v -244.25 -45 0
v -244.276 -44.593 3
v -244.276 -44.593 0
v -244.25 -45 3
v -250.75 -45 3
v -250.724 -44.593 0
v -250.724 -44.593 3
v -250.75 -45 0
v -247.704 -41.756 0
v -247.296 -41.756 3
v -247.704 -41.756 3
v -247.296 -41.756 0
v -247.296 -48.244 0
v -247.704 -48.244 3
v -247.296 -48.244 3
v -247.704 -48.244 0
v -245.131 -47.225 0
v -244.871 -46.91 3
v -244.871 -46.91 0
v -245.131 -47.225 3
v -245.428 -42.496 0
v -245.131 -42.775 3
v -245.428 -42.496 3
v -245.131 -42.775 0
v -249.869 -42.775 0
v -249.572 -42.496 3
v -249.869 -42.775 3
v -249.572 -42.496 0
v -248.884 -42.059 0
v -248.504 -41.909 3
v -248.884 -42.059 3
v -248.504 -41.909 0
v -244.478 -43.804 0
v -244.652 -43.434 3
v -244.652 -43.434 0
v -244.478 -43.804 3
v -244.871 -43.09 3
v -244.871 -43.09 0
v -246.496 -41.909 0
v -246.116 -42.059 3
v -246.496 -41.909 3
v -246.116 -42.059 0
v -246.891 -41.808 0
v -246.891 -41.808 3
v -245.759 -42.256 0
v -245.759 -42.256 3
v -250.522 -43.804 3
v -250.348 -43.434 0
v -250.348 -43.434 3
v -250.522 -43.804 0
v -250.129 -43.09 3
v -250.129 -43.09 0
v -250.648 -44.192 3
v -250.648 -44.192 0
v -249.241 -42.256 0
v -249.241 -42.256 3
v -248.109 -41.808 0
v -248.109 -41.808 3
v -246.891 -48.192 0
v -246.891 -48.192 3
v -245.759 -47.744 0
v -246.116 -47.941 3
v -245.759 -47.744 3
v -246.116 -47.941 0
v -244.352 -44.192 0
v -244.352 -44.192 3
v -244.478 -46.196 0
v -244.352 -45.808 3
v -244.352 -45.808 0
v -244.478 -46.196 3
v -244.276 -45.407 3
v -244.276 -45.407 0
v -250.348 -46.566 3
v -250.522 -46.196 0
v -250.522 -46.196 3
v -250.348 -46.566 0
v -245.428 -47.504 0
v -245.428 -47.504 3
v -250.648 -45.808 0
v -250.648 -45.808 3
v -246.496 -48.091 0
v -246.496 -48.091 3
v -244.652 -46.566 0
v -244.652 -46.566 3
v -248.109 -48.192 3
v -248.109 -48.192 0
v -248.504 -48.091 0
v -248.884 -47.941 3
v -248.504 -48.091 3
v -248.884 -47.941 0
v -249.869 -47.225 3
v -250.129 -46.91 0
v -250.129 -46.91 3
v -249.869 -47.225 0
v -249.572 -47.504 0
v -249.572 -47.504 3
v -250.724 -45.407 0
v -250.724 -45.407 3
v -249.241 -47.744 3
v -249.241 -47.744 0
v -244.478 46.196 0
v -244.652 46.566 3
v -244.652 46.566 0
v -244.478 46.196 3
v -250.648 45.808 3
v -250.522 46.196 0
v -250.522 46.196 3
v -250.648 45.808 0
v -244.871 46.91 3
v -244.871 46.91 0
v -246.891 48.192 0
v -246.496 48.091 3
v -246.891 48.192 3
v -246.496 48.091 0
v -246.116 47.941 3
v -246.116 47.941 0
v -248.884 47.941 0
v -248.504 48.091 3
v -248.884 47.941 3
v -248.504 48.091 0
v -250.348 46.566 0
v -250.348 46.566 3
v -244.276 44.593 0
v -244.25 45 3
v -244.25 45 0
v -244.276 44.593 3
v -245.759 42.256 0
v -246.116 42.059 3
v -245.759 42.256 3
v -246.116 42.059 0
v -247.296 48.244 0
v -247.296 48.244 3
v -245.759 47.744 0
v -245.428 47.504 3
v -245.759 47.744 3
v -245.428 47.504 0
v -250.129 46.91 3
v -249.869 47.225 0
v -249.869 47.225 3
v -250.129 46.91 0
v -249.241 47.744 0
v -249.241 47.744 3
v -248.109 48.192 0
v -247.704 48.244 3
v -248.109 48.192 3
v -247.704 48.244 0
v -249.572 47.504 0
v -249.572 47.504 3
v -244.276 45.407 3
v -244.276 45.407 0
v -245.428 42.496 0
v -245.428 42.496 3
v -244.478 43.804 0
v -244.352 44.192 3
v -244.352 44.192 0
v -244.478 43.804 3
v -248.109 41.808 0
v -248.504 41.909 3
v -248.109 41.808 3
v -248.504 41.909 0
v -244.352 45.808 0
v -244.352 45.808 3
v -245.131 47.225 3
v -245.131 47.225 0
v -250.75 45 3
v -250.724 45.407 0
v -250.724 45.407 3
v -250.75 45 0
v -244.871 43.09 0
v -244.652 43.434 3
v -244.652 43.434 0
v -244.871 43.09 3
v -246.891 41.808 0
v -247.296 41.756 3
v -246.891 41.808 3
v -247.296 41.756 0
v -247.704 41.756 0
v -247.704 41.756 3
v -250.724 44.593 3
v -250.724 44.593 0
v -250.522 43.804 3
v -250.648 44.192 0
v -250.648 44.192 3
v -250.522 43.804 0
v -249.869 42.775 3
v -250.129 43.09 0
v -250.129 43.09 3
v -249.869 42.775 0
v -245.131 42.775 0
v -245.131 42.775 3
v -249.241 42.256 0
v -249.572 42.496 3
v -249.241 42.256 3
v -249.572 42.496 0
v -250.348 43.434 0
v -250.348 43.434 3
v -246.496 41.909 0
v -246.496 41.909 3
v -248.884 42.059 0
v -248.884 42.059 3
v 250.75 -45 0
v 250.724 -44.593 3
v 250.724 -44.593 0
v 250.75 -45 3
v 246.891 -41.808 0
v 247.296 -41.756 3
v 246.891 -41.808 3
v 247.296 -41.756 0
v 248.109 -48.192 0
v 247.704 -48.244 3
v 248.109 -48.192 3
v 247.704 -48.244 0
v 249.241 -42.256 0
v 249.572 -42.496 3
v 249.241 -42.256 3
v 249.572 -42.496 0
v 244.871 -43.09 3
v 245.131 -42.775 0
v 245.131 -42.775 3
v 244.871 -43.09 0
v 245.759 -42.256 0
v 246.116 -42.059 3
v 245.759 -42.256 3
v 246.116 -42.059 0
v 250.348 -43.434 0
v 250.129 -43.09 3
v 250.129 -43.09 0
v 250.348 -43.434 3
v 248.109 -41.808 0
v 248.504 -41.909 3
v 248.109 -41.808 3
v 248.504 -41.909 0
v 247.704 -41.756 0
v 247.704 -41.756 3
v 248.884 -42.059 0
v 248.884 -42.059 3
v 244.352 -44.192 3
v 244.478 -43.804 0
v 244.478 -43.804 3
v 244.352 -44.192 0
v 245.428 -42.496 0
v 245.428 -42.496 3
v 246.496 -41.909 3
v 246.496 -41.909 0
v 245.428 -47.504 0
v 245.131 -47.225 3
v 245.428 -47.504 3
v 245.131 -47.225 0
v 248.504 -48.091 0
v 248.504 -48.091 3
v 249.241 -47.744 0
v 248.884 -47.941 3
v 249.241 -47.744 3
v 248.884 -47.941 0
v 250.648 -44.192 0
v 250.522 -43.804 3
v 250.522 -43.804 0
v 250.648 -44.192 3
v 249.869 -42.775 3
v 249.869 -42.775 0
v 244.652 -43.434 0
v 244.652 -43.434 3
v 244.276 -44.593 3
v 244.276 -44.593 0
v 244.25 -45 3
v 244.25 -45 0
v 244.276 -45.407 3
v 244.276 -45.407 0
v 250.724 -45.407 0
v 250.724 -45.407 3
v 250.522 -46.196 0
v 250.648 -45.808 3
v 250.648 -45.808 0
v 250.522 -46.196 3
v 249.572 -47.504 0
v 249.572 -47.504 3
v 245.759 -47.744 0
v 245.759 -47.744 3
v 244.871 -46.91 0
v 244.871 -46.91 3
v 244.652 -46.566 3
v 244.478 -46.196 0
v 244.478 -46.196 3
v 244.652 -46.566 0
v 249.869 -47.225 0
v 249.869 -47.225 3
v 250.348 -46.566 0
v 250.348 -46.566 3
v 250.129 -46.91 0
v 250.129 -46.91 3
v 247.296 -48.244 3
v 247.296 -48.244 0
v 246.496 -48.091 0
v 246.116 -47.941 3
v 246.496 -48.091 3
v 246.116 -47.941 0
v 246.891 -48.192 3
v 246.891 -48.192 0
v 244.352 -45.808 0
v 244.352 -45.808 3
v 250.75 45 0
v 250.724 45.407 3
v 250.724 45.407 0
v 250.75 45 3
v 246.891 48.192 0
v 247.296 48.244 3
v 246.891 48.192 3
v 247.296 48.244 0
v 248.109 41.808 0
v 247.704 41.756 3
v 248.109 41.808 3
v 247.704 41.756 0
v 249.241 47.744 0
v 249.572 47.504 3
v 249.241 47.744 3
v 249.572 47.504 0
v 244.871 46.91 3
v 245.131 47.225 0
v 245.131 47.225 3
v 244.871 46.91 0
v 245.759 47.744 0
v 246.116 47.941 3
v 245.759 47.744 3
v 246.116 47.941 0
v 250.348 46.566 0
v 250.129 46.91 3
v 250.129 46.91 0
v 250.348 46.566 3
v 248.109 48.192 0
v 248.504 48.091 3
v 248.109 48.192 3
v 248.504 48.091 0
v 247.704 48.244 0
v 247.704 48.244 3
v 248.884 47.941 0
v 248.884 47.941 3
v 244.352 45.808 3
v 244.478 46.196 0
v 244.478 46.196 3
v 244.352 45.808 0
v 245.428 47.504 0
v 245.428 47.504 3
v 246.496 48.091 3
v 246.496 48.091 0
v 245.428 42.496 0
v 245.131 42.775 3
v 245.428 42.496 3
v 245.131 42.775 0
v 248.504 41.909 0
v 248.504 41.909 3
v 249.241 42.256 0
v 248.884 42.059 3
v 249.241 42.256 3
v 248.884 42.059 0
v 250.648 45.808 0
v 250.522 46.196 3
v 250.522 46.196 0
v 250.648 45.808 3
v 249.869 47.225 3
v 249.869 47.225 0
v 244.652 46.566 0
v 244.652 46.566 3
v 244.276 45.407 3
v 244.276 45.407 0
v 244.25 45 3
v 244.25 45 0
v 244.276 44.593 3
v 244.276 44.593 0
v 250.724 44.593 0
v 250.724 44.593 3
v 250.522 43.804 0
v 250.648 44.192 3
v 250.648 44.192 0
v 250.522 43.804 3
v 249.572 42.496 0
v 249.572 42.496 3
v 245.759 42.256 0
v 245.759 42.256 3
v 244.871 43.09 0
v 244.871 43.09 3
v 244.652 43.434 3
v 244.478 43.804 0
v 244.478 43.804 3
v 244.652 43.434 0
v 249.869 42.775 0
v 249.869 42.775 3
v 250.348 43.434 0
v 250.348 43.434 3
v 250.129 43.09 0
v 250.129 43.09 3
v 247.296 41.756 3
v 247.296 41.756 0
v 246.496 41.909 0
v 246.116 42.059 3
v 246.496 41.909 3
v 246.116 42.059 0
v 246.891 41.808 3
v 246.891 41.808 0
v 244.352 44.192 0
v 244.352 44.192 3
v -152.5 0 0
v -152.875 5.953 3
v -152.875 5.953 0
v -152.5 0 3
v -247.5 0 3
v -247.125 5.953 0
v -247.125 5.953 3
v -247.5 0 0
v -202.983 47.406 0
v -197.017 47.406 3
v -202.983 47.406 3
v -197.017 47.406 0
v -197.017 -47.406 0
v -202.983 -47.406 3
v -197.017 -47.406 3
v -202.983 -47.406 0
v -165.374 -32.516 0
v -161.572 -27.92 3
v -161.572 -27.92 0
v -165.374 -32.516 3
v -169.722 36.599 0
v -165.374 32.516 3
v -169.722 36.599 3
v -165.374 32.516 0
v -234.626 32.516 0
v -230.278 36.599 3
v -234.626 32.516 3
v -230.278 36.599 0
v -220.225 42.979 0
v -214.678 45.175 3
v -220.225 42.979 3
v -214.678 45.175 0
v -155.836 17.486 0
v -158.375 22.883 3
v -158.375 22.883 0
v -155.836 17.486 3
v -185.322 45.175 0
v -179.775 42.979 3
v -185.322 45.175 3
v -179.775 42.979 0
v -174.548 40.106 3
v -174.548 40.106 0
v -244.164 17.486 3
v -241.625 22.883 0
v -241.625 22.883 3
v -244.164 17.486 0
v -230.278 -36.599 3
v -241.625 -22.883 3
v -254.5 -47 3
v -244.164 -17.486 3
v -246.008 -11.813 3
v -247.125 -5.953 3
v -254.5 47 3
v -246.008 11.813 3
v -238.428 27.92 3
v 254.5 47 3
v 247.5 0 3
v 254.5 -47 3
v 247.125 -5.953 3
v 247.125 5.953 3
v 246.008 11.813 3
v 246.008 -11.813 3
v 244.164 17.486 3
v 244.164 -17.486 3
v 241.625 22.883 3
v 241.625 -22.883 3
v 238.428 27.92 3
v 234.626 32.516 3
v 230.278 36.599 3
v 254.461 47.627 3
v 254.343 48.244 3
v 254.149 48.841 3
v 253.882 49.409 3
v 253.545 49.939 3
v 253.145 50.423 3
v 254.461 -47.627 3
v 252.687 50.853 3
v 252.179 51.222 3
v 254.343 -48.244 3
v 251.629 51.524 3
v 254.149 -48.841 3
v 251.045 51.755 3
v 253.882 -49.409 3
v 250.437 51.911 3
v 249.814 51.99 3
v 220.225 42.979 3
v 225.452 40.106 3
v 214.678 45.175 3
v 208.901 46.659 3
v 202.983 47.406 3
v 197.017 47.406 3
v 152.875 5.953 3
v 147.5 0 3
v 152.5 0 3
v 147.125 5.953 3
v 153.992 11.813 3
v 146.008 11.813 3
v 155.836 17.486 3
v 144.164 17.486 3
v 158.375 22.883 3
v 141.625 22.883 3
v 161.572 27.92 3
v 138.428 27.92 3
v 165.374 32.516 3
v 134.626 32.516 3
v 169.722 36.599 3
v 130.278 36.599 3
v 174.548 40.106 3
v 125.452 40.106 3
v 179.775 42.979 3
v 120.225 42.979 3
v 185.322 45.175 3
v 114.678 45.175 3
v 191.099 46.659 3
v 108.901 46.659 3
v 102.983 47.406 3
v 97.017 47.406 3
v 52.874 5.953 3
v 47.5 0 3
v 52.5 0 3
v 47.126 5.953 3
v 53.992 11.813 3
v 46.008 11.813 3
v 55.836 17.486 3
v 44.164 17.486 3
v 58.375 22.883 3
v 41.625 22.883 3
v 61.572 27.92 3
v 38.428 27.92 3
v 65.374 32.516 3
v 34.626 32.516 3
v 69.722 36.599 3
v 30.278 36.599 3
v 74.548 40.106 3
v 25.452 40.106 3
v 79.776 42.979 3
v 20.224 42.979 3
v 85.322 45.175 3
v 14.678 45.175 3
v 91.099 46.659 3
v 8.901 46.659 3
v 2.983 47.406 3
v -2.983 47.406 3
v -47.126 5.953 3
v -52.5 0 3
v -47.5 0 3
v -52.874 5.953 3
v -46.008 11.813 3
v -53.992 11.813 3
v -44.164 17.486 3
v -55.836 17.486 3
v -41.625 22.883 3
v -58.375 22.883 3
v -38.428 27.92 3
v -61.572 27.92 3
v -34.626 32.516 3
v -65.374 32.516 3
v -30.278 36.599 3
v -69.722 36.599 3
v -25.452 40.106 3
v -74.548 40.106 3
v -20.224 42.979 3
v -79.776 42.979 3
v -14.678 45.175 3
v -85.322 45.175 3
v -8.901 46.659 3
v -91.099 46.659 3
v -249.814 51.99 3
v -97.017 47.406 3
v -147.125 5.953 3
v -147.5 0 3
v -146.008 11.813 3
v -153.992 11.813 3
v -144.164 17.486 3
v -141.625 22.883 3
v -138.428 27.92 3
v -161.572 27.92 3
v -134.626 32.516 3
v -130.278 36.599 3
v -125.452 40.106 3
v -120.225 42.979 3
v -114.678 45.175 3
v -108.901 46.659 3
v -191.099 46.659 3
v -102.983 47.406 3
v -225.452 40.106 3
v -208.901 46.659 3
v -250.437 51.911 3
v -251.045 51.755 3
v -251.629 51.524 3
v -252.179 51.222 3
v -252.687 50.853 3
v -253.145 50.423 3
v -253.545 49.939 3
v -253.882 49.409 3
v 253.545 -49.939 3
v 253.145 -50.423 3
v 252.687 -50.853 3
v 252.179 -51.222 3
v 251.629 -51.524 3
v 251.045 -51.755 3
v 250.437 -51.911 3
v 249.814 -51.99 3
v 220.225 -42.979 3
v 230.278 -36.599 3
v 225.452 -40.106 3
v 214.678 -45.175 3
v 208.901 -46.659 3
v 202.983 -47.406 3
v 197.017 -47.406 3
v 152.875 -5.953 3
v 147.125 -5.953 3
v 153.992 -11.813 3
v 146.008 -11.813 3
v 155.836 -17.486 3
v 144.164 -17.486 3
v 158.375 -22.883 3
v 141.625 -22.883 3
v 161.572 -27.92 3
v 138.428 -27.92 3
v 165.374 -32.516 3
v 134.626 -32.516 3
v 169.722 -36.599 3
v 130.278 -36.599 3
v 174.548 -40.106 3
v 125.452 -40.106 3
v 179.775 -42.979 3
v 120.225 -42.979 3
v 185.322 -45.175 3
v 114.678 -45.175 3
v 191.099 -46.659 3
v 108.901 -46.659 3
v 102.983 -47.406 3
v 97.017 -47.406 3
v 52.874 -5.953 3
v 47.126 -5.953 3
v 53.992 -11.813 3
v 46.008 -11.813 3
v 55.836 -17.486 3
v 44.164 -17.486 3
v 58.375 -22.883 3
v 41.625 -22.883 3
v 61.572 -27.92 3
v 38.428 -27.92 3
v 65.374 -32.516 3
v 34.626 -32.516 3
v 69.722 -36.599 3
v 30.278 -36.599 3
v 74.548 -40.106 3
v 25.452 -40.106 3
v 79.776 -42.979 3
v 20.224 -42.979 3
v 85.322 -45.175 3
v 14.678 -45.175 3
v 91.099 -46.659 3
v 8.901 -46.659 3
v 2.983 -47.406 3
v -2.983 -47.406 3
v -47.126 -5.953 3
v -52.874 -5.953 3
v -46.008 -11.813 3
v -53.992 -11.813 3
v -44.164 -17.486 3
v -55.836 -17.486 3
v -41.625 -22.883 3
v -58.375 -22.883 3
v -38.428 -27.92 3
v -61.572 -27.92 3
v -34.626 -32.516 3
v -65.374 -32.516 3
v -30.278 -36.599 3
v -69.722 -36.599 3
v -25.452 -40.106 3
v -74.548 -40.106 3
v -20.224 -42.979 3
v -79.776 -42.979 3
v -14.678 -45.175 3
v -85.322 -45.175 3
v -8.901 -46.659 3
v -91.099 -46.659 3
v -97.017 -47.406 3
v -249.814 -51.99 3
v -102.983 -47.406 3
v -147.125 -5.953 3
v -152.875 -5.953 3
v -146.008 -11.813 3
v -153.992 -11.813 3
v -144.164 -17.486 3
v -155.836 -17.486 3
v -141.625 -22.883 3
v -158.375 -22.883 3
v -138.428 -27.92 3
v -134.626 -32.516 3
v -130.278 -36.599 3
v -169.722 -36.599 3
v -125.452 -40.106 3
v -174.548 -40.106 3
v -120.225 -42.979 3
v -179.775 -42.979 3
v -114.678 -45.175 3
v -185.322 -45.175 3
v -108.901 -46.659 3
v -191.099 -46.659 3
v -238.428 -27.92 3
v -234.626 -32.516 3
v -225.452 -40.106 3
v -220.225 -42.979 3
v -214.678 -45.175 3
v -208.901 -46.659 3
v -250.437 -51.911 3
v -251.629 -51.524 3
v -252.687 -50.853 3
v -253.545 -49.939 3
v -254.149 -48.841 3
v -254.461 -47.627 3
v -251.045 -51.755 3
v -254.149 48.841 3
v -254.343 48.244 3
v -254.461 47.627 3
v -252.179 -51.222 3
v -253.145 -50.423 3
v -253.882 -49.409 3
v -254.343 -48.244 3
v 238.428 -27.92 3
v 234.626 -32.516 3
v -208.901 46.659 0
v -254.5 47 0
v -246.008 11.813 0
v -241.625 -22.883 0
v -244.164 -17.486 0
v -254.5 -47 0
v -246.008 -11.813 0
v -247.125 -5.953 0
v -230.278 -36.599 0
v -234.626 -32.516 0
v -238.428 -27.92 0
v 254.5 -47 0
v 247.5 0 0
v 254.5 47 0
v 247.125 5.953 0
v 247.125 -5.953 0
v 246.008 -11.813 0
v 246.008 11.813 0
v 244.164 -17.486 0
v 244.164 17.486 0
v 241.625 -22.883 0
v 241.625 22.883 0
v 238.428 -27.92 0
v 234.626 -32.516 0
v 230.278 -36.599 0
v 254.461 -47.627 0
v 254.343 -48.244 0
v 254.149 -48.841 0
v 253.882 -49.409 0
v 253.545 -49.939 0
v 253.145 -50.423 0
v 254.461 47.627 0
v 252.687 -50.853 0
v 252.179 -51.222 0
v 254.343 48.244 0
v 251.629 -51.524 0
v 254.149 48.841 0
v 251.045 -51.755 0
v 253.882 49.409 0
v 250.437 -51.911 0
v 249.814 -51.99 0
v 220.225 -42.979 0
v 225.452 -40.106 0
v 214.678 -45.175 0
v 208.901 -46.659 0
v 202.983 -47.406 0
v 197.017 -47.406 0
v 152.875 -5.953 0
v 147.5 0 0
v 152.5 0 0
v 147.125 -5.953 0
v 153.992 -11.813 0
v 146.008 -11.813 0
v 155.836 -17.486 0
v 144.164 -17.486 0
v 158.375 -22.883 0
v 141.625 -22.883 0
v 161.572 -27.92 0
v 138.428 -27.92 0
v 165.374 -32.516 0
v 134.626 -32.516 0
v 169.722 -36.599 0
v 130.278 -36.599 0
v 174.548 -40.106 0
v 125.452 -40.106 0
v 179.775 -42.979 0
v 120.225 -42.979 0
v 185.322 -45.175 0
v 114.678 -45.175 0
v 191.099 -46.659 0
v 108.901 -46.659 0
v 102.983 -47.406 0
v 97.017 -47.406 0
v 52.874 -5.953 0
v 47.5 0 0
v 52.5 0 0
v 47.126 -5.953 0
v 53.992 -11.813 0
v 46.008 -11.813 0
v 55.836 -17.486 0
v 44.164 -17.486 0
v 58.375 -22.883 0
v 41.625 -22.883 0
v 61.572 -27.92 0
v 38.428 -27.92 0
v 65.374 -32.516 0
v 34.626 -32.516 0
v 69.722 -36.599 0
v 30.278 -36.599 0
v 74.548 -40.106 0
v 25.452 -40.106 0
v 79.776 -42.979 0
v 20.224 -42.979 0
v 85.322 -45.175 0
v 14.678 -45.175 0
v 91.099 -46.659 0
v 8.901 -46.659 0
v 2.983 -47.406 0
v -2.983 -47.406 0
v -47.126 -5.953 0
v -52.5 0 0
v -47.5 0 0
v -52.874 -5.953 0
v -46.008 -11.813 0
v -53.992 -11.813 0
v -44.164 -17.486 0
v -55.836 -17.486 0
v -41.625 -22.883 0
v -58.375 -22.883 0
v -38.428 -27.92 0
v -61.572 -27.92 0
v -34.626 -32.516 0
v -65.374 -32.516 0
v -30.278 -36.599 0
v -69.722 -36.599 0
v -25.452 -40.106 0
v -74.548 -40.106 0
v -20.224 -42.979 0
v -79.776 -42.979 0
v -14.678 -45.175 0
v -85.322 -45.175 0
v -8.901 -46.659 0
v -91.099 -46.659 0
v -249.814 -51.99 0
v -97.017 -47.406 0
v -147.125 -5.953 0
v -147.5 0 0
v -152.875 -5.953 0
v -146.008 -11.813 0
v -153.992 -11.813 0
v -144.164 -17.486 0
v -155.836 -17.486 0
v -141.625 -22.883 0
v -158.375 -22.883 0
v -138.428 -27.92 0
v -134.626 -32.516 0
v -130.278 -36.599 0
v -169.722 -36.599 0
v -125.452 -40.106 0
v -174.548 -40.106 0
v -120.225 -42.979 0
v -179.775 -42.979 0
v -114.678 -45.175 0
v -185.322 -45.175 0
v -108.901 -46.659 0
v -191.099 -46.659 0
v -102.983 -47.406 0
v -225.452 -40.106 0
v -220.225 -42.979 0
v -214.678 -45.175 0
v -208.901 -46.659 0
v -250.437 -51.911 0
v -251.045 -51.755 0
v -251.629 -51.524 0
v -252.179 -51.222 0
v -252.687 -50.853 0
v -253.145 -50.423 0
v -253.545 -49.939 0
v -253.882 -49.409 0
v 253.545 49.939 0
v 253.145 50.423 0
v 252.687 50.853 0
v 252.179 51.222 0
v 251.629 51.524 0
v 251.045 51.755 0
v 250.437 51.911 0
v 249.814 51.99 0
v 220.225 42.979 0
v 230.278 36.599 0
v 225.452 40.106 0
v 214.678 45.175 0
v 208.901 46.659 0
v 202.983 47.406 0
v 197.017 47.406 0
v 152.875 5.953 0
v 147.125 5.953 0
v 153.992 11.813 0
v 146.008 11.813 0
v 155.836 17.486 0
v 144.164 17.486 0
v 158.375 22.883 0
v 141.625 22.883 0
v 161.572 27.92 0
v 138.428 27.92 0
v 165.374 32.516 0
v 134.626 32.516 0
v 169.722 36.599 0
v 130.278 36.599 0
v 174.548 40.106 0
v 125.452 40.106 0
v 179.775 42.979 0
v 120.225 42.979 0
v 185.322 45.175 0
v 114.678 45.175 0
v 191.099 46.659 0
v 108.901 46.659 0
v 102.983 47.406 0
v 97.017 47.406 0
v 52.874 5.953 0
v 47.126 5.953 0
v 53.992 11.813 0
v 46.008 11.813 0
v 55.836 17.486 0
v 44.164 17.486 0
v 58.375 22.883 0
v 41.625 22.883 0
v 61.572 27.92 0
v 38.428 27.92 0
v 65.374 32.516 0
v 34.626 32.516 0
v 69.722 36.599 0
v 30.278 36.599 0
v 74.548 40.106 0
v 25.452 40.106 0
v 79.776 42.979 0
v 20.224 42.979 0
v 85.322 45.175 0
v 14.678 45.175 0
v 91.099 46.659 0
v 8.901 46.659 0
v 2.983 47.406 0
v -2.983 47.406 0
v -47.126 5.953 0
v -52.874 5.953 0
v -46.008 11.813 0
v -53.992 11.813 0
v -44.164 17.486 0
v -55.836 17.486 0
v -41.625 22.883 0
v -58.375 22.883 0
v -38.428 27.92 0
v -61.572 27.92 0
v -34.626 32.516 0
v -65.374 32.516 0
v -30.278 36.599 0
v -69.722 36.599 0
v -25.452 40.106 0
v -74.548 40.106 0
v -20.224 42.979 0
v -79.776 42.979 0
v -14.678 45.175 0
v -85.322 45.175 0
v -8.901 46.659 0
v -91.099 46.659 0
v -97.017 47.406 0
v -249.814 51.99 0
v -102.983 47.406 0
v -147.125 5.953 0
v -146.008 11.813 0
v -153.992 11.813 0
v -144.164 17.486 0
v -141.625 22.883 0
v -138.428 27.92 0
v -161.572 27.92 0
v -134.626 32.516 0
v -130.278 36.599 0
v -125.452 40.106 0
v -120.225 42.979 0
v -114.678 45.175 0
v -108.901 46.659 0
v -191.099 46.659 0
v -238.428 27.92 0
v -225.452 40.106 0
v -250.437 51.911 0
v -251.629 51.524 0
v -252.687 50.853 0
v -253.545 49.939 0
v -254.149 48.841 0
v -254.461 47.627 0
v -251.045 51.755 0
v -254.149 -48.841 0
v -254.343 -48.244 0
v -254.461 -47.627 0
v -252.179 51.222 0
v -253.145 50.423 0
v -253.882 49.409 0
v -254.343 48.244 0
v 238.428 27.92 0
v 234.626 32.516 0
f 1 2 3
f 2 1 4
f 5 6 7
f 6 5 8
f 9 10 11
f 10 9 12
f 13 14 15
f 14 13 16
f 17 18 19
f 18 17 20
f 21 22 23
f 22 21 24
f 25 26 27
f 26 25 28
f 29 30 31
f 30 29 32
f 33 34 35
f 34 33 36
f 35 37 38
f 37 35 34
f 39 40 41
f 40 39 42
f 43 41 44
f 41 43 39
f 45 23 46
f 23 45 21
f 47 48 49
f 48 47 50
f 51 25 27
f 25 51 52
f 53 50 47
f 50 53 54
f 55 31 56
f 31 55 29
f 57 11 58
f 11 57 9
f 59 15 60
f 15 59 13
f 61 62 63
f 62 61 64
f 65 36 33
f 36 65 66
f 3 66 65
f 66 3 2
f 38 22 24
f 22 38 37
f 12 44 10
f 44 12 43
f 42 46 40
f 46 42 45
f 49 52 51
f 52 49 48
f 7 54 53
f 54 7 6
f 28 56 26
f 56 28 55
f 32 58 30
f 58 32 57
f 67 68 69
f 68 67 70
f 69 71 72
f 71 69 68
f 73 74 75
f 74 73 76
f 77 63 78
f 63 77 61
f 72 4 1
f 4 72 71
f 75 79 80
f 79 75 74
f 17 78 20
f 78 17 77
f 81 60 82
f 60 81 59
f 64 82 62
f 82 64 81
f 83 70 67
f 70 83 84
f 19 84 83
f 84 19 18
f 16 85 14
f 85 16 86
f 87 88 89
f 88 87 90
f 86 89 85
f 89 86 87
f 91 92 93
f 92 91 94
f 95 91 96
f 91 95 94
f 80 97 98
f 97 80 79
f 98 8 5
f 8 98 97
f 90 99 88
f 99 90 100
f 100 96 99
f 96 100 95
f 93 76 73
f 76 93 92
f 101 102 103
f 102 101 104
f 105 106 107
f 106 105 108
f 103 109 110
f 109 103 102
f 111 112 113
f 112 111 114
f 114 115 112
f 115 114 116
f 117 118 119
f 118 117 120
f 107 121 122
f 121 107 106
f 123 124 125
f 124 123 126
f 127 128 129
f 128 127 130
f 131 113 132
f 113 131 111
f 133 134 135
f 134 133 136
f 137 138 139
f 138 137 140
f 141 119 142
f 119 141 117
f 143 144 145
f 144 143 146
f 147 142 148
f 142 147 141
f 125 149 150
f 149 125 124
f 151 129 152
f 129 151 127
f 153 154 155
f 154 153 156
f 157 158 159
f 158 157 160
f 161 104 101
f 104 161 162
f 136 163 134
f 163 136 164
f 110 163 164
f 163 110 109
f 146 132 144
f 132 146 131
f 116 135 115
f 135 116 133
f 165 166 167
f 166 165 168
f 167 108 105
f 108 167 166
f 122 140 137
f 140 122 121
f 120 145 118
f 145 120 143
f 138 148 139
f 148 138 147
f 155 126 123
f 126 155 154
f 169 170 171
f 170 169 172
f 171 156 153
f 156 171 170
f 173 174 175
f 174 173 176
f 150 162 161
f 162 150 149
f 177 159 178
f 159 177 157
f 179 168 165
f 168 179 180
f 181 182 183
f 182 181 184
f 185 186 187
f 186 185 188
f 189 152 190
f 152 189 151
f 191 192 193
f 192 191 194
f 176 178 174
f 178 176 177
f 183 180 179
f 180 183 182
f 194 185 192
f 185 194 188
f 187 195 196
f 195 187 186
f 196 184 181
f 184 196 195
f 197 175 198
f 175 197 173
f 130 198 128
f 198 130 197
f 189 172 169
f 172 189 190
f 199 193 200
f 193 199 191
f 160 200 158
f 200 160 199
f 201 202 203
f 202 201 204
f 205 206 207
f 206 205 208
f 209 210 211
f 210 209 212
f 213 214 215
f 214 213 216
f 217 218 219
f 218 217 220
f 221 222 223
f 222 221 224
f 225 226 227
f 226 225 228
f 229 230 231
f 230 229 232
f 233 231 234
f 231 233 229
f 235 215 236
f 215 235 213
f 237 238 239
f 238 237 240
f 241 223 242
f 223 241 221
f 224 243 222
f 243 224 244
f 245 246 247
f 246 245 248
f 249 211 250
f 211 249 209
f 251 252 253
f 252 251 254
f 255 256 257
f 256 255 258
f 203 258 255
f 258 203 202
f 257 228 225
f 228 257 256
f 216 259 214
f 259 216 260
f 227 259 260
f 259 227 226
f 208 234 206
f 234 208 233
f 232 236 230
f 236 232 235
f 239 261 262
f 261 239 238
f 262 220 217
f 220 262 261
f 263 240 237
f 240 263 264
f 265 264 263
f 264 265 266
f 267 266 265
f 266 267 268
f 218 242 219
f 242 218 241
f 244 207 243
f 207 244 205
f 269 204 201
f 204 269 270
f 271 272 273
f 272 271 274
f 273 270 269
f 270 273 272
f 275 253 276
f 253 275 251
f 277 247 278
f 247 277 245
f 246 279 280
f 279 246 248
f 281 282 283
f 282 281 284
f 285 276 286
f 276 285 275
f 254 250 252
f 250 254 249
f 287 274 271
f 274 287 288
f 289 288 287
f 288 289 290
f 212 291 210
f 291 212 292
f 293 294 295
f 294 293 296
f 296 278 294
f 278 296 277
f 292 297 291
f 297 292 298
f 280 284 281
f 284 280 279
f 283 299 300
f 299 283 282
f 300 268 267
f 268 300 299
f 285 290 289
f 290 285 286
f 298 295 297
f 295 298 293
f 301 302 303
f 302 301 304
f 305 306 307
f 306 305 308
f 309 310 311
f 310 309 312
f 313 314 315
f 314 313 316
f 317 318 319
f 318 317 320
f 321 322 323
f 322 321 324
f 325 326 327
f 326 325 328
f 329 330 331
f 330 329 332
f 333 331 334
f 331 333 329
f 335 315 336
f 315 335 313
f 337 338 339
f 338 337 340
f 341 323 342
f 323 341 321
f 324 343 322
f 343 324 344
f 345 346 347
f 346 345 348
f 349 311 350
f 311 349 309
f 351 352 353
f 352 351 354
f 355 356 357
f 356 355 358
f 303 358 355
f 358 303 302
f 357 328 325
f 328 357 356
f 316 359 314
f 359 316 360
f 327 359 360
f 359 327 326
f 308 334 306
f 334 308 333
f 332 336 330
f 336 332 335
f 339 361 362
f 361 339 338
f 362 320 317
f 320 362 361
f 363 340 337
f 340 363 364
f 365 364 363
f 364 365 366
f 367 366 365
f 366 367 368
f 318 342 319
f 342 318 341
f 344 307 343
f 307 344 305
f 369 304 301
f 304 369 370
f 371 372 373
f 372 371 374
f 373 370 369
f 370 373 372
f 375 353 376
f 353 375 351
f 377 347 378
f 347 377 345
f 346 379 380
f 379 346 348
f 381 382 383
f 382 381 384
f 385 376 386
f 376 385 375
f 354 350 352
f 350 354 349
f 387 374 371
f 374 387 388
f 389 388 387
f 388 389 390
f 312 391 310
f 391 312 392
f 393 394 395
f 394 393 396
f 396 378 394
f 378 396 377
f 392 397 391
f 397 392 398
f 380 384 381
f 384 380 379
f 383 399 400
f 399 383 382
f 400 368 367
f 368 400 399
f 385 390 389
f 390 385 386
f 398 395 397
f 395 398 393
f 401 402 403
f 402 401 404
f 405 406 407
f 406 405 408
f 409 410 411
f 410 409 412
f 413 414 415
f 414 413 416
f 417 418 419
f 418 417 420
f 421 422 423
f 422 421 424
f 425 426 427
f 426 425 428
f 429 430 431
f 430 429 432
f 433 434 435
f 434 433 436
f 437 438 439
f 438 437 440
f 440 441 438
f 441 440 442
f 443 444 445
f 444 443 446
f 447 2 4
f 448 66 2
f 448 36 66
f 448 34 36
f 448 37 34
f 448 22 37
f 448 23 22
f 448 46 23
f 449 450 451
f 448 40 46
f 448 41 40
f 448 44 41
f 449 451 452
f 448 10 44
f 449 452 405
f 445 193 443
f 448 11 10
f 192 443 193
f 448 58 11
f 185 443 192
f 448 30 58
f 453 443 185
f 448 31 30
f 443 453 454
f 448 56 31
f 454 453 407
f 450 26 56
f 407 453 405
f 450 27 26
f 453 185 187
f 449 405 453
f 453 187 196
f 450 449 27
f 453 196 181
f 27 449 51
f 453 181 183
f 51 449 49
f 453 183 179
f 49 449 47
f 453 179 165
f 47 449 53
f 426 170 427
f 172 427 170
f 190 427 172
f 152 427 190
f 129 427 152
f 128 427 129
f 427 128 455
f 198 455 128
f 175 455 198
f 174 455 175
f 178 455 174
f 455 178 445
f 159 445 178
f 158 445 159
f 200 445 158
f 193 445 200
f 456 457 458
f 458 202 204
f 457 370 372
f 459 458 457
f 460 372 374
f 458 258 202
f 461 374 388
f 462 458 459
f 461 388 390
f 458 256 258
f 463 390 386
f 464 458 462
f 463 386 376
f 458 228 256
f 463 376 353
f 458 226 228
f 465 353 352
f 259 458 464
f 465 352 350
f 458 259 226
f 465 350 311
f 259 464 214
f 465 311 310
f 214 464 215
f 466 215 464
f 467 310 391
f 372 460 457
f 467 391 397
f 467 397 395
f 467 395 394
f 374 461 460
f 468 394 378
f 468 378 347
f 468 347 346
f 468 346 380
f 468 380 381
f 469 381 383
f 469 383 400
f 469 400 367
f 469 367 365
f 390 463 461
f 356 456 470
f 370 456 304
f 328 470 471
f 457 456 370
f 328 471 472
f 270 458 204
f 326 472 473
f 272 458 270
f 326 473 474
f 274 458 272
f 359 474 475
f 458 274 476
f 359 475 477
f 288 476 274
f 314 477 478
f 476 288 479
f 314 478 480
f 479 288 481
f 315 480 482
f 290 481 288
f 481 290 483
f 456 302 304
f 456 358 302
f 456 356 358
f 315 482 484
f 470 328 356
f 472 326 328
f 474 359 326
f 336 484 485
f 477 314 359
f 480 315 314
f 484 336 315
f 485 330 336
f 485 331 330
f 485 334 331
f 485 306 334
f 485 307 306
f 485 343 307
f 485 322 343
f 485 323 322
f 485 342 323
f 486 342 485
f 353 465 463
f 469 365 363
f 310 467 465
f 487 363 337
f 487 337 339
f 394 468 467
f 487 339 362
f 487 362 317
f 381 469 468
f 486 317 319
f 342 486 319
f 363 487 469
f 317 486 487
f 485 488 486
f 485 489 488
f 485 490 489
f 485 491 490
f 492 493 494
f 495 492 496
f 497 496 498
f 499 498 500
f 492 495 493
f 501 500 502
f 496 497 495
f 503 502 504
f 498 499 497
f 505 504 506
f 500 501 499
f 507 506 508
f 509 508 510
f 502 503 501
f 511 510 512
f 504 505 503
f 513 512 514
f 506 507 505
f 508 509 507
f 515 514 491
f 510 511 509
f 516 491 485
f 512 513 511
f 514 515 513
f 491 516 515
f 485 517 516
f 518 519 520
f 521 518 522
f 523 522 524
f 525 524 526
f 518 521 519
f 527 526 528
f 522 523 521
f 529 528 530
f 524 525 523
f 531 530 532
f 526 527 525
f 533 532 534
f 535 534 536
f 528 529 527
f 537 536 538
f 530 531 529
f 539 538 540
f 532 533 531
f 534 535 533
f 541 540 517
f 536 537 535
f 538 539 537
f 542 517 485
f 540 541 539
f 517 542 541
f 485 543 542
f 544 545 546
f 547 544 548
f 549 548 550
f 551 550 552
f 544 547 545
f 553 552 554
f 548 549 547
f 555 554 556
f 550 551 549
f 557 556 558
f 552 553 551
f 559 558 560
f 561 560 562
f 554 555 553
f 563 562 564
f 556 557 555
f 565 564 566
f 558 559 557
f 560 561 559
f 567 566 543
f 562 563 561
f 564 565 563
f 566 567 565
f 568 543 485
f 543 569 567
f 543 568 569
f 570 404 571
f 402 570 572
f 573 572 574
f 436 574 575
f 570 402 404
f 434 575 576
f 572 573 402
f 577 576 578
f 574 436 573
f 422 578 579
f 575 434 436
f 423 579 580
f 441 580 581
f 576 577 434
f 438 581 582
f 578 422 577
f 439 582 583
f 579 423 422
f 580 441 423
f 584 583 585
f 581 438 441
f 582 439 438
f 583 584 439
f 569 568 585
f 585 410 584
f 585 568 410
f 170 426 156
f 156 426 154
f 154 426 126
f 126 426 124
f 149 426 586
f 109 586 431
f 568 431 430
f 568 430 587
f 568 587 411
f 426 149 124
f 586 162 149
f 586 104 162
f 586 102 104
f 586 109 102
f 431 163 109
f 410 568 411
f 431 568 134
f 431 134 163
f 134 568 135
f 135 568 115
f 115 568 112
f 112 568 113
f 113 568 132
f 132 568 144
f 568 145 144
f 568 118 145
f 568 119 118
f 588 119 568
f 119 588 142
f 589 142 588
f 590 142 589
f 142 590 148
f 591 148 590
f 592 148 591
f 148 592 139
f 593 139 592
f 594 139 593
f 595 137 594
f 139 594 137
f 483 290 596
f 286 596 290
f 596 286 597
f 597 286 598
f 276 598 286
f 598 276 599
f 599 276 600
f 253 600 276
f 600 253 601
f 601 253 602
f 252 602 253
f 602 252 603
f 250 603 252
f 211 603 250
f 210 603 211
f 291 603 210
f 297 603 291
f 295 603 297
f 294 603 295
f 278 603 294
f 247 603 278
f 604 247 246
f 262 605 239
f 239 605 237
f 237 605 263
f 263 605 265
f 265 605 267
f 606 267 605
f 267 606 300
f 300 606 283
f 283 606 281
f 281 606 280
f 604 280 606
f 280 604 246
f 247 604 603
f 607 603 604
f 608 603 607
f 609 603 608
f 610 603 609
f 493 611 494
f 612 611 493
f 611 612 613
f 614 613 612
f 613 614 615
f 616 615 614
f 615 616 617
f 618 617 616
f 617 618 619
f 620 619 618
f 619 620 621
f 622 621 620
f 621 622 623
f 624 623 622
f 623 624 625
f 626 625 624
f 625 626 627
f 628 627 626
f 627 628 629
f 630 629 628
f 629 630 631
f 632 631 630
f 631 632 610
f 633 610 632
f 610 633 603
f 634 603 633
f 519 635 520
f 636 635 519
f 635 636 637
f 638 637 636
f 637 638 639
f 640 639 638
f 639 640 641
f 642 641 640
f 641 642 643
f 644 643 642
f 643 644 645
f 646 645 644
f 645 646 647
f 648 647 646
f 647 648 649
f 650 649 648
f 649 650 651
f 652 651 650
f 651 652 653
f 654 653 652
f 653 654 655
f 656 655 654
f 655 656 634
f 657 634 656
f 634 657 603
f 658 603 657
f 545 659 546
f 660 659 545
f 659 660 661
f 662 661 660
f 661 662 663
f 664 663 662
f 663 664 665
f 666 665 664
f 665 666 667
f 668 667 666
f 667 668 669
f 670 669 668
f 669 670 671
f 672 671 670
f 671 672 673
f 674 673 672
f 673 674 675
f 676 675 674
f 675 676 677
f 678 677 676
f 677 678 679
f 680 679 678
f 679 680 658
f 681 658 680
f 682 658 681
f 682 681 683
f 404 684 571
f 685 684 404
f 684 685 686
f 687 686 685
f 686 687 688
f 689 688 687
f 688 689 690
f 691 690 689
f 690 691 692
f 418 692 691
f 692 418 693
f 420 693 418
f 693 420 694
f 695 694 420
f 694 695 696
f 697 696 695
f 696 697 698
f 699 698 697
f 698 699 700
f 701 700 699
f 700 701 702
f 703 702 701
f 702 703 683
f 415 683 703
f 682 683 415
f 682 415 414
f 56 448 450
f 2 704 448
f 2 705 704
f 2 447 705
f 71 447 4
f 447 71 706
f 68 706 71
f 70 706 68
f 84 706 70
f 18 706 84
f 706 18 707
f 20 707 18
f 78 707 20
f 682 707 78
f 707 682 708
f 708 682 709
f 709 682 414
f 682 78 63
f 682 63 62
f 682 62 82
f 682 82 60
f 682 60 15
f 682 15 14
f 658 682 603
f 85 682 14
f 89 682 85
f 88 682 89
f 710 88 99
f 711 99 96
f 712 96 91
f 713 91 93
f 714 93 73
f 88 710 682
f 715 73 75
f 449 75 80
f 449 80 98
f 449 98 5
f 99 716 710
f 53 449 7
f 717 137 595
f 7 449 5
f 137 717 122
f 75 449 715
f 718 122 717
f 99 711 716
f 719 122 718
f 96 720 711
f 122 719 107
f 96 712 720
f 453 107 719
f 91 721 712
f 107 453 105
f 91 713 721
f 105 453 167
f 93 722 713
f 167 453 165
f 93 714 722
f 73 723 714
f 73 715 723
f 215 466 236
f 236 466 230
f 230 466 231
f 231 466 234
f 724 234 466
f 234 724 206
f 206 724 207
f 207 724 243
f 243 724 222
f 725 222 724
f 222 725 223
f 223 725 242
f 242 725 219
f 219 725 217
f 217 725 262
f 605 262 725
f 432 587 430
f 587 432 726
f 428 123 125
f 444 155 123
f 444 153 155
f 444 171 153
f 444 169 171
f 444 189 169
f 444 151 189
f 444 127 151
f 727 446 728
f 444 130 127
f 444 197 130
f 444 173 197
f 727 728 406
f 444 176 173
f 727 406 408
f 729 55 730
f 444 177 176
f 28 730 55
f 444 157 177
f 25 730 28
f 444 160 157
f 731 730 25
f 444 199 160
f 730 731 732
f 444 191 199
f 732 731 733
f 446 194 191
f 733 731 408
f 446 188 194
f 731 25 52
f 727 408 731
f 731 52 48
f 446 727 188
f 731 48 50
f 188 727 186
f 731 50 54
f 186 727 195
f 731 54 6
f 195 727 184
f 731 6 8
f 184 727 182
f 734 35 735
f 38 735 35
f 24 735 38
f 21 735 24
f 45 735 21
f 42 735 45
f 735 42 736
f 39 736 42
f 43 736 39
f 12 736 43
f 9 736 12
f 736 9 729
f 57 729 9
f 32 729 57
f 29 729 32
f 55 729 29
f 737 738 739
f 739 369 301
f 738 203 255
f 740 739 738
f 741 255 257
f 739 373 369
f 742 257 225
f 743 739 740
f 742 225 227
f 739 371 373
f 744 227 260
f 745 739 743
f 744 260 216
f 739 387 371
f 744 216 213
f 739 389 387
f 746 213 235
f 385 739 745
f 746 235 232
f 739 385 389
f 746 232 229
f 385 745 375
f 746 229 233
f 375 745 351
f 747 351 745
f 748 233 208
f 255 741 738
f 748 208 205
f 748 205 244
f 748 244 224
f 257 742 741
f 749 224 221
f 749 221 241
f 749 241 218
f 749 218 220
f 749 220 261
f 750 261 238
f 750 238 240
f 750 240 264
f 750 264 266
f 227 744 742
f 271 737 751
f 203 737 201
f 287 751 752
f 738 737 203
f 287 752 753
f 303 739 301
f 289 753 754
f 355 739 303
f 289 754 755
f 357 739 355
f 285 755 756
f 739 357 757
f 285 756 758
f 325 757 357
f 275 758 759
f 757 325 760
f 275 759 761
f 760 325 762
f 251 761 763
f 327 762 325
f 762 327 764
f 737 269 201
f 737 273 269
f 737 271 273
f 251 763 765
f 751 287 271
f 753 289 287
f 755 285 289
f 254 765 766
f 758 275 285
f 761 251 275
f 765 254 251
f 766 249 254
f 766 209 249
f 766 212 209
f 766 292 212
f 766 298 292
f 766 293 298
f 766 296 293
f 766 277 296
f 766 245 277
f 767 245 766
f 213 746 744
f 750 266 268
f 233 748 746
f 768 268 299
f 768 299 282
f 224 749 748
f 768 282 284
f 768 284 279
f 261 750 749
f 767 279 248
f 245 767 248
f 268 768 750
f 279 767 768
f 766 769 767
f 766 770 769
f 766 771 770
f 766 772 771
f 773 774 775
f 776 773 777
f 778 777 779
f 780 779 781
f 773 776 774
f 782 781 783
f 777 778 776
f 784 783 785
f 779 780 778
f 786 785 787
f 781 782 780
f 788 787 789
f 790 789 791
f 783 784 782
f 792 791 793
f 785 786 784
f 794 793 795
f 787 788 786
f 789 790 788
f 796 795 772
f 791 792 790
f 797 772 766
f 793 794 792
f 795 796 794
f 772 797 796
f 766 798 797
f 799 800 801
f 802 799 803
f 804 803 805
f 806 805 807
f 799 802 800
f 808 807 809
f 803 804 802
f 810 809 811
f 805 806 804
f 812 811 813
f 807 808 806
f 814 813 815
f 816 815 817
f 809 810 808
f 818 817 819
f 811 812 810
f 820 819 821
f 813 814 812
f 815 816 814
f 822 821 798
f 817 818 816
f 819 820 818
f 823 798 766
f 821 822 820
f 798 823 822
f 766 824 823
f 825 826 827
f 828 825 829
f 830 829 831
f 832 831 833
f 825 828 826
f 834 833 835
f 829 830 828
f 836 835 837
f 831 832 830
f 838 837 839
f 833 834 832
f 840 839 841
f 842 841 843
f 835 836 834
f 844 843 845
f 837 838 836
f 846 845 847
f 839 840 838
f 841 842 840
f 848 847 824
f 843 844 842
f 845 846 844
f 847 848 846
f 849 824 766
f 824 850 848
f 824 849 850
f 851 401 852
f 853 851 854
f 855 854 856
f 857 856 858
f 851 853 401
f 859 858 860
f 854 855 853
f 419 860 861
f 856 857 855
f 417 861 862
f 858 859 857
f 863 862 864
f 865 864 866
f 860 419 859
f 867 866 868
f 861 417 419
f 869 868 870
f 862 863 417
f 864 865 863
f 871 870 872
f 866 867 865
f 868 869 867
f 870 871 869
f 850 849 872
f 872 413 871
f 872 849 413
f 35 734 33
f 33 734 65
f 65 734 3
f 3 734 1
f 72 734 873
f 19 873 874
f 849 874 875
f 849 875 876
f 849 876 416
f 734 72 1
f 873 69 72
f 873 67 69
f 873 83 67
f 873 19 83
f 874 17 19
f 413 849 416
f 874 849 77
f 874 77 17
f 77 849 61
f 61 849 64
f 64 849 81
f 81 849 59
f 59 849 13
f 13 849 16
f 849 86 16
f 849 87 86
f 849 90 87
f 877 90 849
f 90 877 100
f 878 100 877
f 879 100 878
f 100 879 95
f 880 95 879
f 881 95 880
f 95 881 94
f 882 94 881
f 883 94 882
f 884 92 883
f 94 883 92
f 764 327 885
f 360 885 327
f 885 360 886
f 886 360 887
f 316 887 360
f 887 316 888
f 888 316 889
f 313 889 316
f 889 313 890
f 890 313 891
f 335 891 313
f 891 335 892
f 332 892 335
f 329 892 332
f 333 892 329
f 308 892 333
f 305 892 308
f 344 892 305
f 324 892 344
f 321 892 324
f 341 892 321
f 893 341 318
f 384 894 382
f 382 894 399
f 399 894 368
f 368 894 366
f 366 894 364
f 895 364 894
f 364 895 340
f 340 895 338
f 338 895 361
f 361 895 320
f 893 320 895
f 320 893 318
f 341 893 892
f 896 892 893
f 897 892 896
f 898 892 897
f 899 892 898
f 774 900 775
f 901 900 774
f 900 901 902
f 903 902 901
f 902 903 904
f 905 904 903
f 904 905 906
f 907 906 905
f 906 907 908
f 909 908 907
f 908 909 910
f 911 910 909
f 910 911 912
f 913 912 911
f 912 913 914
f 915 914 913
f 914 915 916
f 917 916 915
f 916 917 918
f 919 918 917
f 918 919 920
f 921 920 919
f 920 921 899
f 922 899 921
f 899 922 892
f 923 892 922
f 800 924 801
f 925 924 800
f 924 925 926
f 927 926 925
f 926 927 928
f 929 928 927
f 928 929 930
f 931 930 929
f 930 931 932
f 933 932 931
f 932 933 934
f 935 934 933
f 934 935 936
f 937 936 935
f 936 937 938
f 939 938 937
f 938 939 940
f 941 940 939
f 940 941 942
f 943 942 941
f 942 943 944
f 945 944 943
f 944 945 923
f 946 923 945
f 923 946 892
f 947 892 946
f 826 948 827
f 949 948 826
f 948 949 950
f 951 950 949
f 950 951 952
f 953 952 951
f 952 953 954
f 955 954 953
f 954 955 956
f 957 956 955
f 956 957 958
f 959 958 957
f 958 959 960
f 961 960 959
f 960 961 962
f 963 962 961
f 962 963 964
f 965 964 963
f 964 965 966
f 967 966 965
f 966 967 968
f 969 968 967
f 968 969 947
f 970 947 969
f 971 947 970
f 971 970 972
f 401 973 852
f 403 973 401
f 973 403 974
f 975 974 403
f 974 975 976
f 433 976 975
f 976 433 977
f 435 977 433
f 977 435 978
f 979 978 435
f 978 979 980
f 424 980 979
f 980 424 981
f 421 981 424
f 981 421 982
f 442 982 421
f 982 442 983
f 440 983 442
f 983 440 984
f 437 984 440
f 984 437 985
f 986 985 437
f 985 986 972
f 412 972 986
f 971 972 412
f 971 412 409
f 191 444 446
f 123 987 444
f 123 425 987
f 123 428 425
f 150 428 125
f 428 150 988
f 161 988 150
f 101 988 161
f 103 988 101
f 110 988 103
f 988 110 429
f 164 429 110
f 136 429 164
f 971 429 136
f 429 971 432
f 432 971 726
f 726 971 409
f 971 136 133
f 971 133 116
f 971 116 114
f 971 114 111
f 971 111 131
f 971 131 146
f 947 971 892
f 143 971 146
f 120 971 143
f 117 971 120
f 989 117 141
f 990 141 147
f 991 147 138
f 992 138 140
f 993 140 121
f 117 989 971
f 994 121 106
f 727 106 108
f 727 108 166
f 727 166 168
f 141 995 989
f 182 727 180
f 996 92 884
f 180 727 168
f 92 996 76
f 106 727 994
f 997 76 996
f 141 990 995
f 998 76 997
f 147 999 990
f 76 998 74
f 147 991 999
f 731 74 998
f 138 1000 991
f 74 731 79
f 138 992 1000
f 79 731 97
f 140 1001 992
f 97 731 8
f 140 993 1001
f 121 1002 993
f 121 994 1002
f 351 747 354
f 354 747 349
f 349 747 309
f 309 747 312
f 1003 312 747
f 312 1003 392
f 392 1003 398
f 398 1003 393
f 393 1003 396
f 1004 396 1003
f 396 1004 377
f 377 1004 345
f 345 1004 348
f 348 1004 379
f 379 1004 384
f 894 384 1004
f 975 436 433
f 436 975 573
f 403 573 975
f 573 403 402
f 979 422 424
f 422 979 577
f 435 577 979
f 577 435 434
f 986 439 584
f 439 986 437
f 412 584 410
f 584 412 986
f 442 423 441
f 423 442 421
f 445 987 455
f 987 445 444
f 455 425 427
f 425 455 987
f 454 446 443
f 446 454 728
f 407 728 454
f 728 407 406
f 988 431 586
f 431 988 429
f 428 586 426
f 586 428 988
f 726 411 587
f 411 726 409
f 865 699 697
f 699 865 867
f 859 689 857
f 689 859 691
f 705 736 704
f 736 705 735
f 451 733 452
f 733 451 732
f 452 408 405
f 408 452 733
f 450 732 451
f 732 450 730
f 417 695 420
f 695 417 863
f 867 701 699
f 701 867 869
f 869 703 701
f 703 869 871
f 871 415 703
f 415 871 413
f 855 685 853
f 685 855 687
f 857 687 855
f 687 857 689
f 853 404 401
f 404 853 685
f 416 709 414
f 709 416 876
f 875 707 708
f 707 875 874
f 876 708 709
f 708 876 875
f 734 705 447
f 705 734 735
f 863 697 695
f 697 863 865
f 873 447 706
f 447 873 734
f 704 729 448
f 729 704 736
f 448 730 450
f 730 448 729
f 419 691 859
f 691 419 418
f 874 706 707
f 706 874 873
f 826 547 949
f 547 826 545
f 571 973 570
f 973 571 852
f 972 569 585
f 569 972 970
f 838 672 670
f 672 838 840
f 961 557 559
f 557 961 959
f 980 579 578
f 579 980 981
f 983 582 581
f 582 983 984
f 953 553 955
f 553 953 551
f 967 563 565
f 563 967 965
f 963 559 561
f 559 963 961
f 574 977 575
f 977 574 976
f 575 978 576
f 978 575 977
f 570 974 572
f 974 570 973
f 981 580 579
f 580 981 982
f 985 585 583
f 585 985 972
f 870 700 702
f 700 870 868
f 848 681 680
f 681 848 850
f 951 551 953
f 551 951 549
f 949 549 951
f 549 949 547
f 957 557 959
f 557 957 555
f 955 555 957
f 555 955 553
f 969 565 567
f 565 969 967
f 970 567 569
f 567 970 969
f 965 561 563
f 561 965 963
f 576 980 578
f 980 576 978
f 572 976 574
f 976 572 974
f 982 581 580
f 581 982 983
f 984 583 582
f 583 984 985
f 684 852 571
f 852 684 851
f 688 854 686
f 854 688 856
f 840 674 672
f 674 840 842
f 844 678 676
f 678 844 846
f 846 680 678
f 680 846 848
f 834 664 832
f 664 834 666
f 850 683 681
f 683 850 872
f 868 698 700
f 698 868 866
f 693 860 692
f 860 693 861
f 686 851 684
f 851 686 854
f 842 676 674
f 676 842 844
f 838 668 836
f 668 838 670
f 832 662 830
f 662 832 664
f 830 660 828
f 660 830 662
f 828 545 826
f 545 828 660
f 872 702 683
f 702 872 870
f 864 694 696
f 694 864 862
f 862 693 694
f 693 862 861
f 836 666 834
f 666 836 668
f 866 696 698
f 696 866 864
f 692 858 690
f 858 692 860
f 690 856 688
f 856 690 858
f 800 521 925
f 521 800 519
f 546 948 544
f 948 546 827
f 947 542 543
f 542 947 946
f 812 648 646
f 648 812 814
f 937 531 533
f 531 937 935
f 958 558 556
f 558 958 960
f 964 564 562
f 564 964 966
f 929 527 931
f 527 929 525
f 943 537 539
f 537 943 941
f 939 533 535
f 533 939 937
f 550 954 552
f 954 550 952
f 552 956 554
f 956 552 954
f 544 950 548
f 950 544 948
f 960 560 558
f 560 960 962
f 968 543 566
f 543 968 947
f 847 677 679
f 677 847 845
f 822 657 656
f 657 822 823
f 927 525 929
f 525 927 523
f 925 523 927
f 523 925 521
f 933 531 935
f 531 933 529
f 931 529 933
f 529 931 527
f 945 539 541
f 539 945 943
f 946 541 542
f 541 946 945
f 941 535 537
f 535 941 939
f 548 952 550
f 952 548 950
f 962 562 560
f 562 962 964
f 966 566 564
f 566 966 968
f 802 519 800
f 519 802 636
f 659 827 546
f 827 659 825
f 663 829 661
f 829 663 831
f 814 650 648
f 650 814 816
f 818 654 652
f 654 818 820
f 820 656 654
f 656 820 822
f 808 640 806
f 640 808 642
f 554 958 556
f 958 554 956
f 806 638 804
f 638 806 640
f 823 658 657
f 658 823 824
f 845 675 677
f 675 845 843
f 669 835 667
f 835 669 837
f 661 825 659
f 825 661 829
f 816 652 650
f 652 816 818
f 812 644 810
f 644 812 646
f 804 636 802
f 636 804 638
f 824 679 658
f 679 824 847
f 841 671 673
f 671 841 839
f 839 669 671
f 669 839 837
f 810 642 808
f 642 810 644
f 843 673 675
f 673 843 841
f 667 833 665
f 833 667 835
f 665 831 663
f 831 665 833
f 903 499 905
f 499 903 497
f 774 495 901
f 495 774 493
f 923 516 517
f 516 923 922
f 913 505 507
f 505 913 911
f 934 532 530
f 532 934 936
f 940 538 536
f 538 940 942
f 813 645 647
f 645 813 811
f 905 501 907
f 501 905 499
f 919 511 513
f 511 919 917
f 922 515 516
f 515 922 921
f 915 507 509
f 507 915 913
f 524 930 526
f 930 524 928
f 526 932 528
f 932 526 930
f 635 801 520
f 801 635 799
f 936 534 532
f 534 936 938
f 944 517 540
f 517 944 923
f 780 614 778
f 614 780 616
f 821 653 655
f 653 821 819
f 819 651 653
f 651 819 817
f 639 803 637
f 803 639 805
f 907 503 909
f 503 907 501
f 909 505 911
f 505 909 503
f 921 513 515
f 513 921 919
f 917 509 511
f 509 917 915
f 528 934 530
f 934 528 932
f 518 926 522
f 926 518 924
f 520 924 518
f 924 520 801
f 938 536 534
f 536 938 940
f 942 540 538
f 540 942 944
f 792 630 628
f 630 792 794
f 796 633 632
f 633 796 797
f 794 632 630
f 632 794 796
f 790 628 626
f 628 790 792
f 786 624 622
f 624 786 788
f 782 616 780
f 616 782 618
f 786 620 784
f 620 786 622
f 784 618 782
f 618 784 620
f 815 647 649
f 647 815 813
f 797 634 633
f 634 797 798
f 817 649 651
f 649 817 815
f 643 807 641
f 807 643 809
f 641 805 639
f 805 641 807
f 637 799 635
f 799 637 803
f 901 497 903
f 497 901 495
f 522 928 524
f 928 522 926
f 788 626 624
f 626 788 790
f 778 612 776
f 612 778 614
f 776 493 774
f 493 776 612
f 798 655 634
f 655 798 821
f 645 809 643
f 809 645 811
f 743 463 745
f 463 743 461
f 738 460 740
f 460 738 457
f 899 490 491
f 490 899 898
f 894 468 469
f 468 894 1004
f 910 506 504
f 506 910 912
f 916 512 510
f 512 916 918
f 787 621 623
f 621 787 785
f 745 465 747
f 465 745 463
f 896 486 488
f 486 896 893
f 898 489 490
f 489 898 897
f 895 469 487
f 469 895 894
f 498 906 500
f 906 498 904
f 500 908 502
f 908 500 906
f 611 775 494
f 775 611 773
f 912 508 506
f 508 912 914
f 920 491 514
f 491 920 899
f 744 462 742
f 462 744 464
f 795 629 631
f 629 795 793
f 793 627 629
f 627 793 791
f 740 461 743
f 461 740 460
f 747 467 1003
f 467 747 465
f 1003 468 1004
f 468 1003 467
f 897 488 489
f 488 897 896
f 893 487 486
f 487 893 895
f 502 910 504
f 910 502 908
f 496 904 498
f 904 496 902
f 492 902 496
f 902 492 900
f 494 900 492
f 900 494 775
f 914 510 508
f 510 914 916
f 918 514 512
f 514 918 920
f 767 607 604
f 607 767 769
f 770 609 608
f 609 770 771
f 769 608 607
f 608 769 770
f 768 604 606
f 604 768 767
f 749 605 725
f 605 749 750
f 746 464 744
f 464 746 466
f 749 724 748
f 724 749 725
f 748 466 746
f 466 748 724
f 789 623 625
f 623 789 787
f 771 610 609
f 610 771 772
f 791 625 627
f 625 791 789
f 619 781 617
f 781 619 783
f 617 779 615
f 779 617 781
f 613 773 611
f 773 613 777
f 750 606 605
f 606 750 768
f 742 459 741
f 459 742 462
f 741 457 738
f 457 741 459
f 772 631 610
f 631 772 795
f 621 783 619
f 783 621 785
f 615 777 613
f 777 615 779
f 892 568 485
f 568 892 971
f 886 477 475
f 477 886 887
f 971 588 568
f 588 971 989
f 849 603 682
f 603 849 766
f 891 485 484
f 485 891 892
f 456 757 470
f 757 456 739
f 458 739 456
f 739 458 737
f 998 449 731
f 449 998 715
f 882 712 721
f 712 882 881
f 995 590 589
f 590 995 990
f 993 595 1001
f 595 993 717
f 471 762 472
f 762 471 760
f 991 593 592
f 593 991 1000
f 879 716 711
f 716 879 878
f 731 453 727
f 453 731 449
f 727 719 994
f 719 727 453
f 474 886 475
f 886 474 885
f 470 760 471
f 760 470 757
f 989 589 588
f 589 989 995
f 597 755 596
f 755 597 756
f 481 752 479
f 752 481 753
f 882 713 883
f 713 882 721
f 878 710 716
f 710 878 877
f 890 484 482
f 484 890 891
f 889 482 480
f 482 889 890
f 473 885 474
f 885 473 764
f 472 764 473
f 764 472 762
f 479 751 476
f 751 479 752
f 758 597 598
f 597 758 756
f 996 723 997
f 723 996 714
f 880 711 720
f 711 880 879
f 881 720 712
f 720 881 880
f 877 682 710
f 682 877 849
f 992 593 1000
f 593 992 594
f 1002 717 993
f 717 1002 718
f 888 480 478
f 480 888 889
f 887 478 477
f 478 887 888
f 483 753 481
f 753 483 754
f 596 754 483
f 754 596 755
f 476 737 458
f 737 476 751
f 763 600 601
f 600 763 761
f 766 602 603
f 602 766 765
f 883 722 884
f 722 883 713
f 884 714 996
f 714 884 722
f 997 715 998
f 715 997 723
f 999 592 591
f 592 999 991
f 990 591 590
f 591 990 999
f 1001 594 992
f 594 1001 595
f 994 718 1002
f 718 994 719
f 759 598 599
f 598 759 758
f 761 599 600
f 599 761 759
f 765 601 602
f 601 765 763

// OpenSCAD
$fn = 50;


difference() {
	union() {
		hull() {
			translate(v = [-249.5000000000, 47.0000000000, 0]) {
				cylinder(h = 3, r = 5);
			}
			translate(v = [249.5000000000, 47.0000000000, 0]) {
				cylinder(h = 3, r = 5);
			}
			translate(v = [-249.5000000000, -47.0000000000, 0]) {
				cylinder(h = 3, r = 5);
			}
			translate(v = [249.5000000000, -47.0000000000, 0]) {
				cylinder(h = 3, r = 5);
			}
		}
	}
	union() {
		#translate(v = [-247.5000000000, -45.0000000000, -100.0000000000]) {
			cylinder(h = 200, r = 3.2500000000);
		}
		#translate(v = [-247.5000000000, 45.0000000000, -100.0000000000]) {
			cylinder(h = 200, r = 3.2500000000);
		}
		#translate(v = [247.5000000000, -45.0000000000, -100.0000000000]) {
			cylinder(h = 200, r = 3.2500000000);
		}
		#translate(v = [247.5000000000, 45.0000000000, -100.0000000000]) {
			cylinder(h = 200, r = 3.2500000000);
		}
		#translate(v = [-200.0000000000, 0, 0]) {
			cylinder(h = 3, r = 47.5000000000);
		}
		#translate(v = [-100.0000000000, 0, 0]) {
			cylinder(h = 3, r = 47.5000000000);
		}
		#cylinder(h = 3, r = 47.5000000000);
		#translate(v = [100.0000000000, 0, 0]) {
			cylinder(h = 3, r = 47.5000000000);
		}
		#translate(v = [200.0000000000, 0, 0]) {
			cylinder(h = 3, r = 47.5000000000);
		}
	}
}
